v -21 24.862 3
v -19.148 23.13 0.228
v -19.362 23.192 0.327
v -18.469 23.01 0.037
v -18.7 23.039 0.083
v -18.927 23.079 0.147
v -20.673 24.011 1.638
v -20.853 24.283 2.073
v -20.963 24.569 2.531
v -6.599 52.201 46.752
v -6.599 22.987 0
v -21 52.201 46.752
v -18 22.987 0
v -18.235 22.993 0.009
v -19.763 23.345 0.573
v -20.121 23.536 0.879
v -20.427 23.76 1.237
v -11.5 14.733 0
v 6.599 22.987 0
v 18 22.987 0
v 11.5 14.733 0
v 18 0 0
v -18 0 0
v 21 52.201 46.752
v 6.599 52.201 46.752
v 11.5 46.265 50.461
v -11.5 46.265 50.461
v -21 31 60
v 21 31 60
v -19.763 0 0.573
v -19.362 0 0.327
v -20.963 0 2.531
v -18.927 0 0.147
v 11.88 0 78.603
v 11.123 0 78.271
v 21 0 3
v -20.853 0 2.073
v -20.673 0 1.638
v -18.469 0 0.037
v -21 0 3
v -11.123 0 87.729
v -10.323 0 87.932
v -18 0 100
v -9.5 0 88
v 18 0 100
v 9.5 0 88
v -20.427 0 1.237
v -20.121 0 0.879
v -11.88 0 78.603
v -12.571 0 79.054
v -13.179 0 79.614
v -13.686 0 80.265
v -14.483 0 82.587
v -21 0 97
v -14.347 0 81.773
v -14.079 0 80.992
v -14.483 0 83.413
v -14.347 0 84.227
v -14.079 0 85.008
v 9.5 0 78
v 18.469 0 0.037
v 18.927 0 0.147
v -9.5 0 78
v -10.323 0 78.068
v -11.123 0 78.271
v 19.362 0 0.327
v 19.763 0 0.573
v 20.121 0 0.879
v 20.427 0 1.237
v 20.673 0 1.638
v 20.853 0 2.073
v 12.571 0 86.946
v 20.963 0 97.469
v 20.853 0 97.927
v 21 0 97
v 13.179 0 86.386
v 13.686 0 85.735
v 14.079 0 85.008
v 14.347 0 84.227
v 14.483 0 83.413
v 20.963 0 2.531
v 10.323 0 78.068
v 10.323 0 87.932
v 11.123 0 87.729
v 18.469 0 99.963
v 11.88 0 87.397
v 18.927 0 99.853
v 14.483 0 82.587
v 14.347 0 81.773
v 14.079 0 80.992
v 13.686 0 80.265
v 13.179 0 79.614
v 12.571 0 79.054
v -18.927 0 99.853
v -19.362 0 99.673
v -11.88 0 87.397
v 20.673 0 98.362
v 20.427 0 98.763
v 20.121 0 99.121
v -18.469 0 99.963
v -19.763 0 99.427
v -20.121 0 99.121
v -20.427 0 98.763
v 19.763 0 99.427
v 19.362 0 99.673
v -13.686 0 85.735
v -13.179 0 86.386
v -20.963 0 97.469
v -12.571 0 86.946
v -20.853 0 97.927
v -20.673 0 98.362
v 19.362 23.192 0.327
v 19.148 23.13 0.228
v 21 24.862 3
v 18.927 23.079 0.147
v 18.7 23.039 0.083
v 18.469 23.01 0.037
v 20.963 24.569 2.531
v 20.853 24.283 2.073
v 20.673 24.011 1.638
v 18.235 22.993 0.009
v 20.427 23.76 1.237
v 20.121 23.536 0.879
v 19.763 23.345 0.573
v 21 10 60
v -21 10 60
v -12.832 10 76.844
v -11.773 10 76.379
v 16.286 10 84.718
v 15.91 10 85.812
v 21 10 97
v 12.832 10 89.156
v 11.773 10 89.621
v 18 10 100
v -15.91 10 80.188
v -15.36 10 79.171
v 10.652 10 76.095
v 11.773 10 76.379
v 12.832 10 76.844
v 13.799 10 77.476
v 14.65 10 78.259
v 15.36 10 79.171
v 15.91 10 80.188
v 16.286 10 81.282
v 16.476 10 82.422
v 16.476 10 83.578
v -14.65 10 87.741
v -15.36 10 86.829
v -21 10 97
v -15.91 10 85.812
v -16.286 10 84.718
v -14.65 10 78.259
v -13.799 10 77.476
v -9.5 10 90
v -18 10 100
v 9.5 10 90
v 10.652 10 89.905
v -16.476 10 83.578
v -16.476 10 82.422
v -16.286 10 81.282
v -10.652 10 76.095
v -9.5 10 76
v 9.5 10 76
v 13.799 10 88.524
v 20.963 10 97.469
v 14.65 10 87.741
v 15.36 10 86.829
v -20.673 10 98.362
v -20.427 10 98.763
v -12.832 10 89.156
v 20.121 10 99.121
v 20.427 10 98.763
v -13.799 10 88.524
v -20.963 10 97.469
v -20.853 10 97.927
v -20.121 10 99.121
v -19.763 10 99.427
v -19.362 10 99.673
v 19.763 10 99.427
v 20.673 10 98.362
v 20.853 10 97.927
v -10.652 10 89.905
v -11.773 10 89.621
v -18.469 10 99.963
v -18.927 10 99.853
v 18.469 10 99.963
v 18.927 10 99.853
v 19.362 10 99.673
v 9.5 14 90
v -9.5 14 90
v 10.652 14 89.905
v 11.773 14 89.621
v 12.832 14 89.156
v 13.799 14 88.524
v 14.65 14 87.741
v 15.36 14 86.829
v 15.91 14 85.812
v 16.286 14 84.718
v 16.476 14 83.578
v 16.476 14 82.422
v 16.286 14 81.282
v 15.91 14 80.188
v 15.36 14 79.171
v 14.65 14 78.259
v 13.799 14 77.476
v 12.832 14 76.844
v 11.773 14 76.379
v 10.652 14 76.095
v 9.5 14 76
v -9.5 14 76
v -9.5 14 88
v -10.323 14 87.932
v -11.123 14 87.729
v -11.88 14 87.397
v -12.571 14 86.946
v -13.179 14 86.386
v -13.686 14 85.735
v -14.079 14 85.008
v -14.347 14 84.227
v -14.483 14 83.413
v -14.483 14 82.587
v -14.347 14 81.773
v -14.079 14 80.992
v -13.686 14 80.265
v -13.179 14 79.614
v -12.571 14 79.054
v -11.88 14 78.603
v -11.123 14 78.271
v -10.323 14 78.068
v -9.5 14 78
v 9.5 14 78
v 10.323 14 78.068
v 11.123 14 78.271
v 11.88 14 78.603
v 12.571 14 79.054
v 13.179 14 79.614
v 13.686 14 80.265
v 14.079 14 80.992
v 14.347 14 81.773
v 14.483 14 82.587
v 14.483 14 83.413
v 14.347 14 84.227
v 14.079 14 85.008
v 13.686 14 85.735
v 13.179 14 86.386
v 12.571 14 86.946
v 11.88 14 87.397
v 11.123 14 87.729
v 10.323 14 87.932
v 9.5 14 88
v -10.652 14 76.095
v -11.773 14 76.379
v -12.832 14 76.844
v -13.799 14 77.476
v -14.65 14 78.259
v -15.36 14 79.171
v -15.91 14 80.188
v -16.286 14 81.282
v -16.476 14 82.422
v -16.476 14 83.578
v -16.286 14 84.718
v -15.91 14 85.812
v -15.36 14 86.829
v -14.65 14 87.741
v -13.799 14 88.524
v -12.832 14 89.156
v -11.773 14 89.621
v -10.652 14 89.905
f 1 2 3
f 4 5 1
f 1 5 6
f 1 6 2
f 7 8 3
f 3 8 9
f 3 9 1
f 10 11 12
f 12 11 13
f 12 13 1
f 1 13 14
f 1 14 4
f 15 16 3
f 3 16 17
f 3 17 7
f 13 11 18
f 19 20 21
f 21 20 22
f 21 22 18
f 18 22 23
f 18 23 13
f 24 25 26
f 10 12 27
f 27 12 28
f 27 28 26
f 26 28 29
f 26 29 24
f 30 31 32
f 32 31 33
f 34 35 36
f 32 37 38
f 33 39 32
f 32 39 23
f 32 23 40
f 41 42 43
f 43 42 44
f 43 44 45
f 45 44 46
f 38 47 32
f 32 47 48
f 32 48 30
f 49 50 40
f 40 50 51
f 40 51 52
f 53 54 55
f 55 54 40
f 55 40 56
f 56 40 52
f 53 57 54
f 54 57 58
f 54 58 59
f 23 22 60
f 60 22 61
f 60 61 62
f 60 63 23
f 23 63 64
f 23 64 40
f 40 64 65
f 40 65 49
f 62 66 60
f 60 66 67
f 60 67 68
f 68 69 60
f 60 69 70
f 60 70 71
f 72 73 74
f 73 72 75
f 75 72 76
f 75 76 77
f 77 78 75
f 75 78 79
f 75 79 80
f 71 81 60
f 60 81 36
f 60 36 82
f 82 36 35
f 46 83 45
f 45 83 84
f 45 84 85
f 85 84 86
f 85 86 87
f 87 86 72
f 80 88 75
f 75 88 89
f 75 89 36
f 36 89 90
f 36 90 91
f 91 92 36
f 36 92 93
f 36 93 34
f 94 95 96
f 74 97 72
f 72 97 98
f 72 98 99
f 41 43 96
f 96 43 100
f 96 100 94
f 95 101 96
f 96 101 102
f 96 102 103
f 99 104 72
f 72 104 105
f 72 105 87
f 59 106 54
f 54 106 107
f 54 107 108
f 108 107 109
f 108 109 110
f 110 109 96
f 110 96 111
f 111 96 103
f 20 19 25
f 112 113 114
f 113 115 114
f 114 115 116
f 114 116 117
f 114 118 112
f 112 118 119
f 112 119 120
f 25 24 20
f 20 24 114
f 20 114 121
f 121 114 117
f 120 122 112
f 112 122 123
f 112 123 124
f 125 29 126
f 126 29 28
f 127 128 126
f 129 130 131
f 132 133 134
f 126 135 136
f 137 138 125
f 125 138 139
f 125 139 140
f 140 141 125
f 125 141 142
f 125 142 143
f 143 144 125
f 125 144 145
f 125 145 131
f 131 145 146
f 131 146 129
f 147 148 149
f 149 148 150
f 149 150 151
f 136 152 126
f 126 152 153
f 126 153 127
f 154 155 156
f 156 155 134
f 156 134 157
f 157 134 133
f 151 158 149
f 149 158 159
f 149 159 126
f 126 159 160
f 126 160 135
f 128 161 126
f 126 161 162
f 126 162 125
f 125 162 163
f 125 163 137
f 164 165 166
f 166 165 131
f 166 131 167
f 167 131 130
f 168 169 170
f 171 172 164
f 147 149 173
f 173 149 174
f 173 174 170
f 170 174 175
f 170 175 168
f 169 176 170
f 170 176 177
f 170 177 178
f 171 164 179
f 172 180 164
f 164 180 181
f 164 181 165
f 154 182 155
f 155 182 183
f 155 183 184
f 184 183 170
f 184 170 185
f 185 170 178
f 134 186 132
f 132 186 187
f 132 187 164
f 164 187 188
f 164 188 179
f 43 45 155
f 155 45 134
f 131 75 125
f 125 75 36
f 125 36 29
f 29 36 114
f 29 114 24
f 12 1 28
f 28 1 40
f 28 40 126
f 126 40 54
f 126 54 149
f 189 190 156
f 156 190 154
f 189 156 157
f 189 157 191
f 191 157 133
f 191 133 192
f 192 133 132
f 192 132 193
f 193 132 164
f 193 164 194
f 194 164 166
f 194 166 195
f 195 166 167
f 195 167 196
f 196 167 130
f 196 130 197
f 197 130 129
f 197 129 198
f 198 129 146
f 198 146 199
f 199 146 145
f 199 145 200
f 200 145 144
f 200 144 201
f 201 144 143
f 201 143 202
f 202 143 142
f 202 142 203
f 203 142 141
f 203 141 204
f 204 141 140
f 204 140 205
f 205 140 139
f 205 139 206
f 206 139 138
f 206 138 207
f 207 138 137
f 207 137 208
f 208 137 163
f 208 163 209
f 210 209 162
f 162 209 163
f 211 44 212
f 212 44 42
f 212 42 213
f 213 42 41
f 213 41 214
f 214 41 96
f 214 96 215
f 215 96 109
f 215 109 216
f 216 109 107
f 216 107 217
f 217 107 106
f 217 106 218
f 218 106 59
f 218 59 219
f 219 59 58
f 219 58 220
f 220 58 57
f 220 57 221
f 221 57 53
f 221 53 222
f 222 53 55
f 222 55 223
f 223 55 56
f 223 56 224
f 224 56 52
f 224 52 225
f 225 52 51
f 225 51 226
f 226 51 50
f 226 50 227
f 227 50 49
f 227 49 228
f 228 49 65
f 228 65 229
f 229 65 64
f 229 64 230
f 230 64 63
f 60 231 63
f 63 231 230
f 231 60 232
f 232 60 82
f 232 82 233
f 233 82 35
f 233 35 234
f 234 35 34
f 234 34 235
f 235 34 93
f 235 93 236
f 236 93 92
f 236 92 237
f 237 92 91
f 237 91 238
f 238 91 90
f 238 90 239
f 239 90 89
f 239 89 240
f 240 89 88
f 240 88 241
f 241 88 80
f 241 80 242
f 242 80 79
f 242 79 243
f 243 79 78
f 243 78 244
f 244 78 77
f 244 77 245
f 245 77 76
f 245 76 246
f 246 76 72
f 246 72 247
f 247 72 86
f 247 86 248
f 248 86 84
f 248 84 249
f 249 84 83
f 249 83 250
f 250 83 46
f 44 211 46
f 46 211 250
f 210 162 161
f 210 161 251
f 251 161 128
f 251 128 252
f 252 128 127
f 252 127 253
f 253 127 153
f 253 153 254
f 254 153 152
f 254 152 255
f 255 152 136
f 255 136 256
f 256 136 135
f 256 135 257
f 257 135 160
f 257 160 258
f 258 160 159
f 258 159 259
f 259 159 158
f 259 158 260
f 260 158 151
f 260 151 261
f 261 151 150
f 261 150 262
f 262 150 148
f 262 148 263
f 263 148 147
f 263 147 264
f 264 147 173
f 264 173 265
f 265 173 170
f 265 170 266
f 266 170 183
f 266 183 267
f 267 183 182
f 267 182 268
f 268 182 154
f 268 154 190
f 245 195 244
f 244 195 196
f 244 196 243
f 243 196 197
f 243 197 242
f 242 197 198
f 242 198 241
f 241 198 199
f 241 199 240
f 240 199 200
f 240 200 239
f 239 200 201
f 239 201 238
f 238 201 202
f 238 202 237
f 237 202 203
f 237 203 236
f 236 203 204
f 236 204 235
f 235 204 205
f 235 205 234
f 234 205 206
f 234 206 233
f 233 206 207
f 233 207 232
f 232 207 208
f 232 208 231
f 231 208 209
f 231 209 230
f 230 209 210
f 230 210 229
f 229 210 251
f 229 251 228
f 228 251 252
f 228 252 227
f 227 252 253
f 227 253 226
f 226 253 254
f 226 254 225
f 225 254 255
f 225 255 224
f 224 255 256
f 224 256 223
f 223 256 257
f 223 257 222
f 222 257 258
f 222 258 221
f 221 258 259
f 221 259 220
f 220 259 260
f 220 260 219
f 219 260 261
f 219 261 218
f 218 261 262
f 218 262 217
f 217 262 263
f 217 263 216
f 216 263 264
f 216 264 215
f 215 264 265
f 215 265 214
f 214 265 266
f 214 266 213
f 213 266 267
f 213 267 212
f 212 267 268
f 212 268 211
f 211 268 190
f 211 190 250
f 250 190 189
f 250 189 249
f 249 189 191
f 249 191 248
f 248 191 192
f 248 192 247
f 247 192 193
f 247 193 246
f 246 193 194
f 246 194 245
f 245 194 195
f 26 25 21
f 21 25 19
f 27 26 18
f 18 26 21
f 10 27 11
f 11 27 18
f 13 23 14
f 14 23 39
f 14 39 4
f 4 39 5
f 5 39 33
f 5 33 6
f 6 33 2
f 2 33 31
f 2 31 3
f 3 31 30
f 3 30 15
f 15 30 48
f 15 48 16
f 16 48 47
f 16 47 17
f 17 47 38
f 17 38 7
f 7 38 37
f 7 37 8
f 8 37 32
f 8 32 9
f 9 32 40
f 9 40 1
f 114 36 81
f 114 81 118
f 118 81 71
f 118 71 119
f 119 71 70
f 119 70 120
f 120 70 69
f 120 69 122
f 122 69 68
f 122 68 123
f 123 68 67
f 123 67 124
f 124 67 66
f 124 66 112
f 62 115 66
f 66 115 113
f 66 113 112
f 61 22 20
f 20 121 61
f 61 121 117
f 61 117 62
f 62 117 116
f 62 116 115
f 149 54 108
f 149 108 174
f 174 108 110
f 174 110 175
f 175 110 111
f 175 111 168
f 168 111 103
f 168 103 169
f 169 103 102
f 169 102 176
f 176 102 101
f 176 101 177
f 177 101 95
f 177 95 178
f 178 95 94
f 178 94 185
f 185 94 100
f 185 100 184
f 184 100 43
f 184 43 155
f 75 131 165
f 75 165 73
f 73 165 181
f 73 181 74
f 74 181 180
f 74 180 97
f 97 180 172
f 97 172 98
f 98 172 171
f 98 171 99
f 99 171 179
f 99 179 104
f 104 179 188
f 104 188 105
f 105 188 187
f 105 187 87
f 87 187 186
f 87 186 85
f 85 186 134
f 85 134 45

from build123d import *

# Parameters (mm, degrees)
BOSS_EXTRUDE1_DEPTH = 21
BOSS_EXTRUDE2_DEPTH = 4
CUT_EXTRUDE1_DEPTH  = 111.552889986
CUT_EXTRUDE2_REACH  = 72.51
FILLET1_R           = 3


with BuildPart() as part:
    # Sketch1 → Boss-Extrude1 (new, symmetric)
    with BuildSketch(Plane(origin=(0, 0, 0), x_dir=(0, 0, -1), z_dir=(1, 0, 0))):
        Polygon((0, 0), (0, 22.987298969), (-46.752018394, 52.201202404), (-60, 31), (-60, 10), (-100, 10), (-100, 0), align=None)
    extrude(amount=BOSS_EXTRUDE1_DEPTH, both=True)

    # Sketch2 → Boss-Extrude2 (add)
    with BuildSketch(Plane(origin=(0, 10, 0), x_dir=(1, 0, 0), z_dir=(0, 1, 0))):
        with BuildLine():
            Line((-9.5, -90), (9.5, -90))
            ThreePointArc((9.5, -90), (16.5, -83), (9.5, -76))
            Line((9.5, -76), (-9.5, -76))
            ThreePointArc((-9.5, -76), (-16.5, -83), (-9.5, -90))
        make_face()
        with BuildLine():
            ThreePointArc((-9.5, -78), (-14.5, -83), (-9.5, -88))
            Line((-9.5, -88), (9.5, -88))
            ThreePointArc((9.5, -88), (14.5, -83), (9.5, -78))
            Line((9.5, -78), (-9.5, -78))
        make_face(mode=Mode.SUBTRACT)
    extrude(amount=BOSS_EXTRUDE2_DEPTH)

    # Sketch2<3> → Cut-Extrude1 (cut, through all)
    with BuildSketch(Plane(origin=(0, 10, 0), x_dir=(1, 0, 0), z_dir=(0, 1, 0))):
        with BuildLine():
            Line((9.5, -78), (-9.5, -78))
            ThreePointArc((-9.5, -78), (-14.5, -83), (-9.5, -88))
            Line((-9.5, -88), (9.5, -88))
            ThreePointArc((9.5, -88), (14.5, -83), (9.5, -78))
        make_face()
    extrude(amount=-CUT_EXTRUDE1_DEPTH, mode=Mode.SUBTRACT)

    # Cut-Extrude2: up to this plane
    cut_extrude2_end = Plane(origin=(21, 0, 0), z_dir=(0, 0, 1))
    # Sketch3 → Cut-Extrude2 (cut, up to the surface)
    with BuildSketch(Plane(origin=(0, 35.669068614, 57.082442121), x_dir=(1, 0, 0), z_dir=(0, 0.5299192642332053, 0.8480480961564258)), mode=Mode.PRIVATE) as cut_extrude2_sk1:
        Polygon((0, 19.494335127), (0, 12.494335127), (11.5, 12.494335127), (6.598547233, 19.494335127), align=None)
    cut_extrude2_tool1 = split(extrude(cut_extrude2_sk1.sketch, amount=-CUT_EXTRUDE2_REACH, mode=Mode.PRIVATE), bisect_by=cut_extrude2_end, keep=Keep.BOTH, mode=Mode.PRIVATE)
    add(cut_extrude2_tool1.solids().sort_by_distance((4.635255, 48.965087, 48.774167))[0], mode=Mode.SUBTRACT)
    # Sketch3 → Cut-Extrude2 (cut, up to the surface)
    with BuildSketch(Plane(origin=(0, 35.669068614, 57.082442121), x_dir=(1, 0, 0), z_dir=(0, 0.5299192642332053, 0.8480480961564258)), mode=Mode.PRIVATE) as cut_extrude2_sk2:
        Polygon((0, 19.494335127), (-6.598547233, 19.494335127), (-11.5, 12.494335127), (0, 12.494335127), align=None)
    cut_extrude2_tool2 = split(extrude(cut_extrude2_sk2.sketch, amount=-CUT_EXTRUDE2_REACH, mode=Mode.PRIVATE), bisect_by=cut_extrude2_end, keep=Keep.BOTH, mode=Mode.PRIVATE)
    add(cut_extrude2_tool2.solids().sort_by_distance((-4.635255, 48.965087, 48.774167))[0], mode=Mode.SUBTRACT)

    # Fillet1
    fillet1_edges = [part.edges().sort_by_distance(p)[0] for p in [
        (21, 5, 100),
        (-21, 5, 100),
        (21, 11.493649485, 0),
        (-21, 11.493649485, 0),
    ]]
    fillet(fillet1_edges, radius=FILLET1_R)


solid = part.part
